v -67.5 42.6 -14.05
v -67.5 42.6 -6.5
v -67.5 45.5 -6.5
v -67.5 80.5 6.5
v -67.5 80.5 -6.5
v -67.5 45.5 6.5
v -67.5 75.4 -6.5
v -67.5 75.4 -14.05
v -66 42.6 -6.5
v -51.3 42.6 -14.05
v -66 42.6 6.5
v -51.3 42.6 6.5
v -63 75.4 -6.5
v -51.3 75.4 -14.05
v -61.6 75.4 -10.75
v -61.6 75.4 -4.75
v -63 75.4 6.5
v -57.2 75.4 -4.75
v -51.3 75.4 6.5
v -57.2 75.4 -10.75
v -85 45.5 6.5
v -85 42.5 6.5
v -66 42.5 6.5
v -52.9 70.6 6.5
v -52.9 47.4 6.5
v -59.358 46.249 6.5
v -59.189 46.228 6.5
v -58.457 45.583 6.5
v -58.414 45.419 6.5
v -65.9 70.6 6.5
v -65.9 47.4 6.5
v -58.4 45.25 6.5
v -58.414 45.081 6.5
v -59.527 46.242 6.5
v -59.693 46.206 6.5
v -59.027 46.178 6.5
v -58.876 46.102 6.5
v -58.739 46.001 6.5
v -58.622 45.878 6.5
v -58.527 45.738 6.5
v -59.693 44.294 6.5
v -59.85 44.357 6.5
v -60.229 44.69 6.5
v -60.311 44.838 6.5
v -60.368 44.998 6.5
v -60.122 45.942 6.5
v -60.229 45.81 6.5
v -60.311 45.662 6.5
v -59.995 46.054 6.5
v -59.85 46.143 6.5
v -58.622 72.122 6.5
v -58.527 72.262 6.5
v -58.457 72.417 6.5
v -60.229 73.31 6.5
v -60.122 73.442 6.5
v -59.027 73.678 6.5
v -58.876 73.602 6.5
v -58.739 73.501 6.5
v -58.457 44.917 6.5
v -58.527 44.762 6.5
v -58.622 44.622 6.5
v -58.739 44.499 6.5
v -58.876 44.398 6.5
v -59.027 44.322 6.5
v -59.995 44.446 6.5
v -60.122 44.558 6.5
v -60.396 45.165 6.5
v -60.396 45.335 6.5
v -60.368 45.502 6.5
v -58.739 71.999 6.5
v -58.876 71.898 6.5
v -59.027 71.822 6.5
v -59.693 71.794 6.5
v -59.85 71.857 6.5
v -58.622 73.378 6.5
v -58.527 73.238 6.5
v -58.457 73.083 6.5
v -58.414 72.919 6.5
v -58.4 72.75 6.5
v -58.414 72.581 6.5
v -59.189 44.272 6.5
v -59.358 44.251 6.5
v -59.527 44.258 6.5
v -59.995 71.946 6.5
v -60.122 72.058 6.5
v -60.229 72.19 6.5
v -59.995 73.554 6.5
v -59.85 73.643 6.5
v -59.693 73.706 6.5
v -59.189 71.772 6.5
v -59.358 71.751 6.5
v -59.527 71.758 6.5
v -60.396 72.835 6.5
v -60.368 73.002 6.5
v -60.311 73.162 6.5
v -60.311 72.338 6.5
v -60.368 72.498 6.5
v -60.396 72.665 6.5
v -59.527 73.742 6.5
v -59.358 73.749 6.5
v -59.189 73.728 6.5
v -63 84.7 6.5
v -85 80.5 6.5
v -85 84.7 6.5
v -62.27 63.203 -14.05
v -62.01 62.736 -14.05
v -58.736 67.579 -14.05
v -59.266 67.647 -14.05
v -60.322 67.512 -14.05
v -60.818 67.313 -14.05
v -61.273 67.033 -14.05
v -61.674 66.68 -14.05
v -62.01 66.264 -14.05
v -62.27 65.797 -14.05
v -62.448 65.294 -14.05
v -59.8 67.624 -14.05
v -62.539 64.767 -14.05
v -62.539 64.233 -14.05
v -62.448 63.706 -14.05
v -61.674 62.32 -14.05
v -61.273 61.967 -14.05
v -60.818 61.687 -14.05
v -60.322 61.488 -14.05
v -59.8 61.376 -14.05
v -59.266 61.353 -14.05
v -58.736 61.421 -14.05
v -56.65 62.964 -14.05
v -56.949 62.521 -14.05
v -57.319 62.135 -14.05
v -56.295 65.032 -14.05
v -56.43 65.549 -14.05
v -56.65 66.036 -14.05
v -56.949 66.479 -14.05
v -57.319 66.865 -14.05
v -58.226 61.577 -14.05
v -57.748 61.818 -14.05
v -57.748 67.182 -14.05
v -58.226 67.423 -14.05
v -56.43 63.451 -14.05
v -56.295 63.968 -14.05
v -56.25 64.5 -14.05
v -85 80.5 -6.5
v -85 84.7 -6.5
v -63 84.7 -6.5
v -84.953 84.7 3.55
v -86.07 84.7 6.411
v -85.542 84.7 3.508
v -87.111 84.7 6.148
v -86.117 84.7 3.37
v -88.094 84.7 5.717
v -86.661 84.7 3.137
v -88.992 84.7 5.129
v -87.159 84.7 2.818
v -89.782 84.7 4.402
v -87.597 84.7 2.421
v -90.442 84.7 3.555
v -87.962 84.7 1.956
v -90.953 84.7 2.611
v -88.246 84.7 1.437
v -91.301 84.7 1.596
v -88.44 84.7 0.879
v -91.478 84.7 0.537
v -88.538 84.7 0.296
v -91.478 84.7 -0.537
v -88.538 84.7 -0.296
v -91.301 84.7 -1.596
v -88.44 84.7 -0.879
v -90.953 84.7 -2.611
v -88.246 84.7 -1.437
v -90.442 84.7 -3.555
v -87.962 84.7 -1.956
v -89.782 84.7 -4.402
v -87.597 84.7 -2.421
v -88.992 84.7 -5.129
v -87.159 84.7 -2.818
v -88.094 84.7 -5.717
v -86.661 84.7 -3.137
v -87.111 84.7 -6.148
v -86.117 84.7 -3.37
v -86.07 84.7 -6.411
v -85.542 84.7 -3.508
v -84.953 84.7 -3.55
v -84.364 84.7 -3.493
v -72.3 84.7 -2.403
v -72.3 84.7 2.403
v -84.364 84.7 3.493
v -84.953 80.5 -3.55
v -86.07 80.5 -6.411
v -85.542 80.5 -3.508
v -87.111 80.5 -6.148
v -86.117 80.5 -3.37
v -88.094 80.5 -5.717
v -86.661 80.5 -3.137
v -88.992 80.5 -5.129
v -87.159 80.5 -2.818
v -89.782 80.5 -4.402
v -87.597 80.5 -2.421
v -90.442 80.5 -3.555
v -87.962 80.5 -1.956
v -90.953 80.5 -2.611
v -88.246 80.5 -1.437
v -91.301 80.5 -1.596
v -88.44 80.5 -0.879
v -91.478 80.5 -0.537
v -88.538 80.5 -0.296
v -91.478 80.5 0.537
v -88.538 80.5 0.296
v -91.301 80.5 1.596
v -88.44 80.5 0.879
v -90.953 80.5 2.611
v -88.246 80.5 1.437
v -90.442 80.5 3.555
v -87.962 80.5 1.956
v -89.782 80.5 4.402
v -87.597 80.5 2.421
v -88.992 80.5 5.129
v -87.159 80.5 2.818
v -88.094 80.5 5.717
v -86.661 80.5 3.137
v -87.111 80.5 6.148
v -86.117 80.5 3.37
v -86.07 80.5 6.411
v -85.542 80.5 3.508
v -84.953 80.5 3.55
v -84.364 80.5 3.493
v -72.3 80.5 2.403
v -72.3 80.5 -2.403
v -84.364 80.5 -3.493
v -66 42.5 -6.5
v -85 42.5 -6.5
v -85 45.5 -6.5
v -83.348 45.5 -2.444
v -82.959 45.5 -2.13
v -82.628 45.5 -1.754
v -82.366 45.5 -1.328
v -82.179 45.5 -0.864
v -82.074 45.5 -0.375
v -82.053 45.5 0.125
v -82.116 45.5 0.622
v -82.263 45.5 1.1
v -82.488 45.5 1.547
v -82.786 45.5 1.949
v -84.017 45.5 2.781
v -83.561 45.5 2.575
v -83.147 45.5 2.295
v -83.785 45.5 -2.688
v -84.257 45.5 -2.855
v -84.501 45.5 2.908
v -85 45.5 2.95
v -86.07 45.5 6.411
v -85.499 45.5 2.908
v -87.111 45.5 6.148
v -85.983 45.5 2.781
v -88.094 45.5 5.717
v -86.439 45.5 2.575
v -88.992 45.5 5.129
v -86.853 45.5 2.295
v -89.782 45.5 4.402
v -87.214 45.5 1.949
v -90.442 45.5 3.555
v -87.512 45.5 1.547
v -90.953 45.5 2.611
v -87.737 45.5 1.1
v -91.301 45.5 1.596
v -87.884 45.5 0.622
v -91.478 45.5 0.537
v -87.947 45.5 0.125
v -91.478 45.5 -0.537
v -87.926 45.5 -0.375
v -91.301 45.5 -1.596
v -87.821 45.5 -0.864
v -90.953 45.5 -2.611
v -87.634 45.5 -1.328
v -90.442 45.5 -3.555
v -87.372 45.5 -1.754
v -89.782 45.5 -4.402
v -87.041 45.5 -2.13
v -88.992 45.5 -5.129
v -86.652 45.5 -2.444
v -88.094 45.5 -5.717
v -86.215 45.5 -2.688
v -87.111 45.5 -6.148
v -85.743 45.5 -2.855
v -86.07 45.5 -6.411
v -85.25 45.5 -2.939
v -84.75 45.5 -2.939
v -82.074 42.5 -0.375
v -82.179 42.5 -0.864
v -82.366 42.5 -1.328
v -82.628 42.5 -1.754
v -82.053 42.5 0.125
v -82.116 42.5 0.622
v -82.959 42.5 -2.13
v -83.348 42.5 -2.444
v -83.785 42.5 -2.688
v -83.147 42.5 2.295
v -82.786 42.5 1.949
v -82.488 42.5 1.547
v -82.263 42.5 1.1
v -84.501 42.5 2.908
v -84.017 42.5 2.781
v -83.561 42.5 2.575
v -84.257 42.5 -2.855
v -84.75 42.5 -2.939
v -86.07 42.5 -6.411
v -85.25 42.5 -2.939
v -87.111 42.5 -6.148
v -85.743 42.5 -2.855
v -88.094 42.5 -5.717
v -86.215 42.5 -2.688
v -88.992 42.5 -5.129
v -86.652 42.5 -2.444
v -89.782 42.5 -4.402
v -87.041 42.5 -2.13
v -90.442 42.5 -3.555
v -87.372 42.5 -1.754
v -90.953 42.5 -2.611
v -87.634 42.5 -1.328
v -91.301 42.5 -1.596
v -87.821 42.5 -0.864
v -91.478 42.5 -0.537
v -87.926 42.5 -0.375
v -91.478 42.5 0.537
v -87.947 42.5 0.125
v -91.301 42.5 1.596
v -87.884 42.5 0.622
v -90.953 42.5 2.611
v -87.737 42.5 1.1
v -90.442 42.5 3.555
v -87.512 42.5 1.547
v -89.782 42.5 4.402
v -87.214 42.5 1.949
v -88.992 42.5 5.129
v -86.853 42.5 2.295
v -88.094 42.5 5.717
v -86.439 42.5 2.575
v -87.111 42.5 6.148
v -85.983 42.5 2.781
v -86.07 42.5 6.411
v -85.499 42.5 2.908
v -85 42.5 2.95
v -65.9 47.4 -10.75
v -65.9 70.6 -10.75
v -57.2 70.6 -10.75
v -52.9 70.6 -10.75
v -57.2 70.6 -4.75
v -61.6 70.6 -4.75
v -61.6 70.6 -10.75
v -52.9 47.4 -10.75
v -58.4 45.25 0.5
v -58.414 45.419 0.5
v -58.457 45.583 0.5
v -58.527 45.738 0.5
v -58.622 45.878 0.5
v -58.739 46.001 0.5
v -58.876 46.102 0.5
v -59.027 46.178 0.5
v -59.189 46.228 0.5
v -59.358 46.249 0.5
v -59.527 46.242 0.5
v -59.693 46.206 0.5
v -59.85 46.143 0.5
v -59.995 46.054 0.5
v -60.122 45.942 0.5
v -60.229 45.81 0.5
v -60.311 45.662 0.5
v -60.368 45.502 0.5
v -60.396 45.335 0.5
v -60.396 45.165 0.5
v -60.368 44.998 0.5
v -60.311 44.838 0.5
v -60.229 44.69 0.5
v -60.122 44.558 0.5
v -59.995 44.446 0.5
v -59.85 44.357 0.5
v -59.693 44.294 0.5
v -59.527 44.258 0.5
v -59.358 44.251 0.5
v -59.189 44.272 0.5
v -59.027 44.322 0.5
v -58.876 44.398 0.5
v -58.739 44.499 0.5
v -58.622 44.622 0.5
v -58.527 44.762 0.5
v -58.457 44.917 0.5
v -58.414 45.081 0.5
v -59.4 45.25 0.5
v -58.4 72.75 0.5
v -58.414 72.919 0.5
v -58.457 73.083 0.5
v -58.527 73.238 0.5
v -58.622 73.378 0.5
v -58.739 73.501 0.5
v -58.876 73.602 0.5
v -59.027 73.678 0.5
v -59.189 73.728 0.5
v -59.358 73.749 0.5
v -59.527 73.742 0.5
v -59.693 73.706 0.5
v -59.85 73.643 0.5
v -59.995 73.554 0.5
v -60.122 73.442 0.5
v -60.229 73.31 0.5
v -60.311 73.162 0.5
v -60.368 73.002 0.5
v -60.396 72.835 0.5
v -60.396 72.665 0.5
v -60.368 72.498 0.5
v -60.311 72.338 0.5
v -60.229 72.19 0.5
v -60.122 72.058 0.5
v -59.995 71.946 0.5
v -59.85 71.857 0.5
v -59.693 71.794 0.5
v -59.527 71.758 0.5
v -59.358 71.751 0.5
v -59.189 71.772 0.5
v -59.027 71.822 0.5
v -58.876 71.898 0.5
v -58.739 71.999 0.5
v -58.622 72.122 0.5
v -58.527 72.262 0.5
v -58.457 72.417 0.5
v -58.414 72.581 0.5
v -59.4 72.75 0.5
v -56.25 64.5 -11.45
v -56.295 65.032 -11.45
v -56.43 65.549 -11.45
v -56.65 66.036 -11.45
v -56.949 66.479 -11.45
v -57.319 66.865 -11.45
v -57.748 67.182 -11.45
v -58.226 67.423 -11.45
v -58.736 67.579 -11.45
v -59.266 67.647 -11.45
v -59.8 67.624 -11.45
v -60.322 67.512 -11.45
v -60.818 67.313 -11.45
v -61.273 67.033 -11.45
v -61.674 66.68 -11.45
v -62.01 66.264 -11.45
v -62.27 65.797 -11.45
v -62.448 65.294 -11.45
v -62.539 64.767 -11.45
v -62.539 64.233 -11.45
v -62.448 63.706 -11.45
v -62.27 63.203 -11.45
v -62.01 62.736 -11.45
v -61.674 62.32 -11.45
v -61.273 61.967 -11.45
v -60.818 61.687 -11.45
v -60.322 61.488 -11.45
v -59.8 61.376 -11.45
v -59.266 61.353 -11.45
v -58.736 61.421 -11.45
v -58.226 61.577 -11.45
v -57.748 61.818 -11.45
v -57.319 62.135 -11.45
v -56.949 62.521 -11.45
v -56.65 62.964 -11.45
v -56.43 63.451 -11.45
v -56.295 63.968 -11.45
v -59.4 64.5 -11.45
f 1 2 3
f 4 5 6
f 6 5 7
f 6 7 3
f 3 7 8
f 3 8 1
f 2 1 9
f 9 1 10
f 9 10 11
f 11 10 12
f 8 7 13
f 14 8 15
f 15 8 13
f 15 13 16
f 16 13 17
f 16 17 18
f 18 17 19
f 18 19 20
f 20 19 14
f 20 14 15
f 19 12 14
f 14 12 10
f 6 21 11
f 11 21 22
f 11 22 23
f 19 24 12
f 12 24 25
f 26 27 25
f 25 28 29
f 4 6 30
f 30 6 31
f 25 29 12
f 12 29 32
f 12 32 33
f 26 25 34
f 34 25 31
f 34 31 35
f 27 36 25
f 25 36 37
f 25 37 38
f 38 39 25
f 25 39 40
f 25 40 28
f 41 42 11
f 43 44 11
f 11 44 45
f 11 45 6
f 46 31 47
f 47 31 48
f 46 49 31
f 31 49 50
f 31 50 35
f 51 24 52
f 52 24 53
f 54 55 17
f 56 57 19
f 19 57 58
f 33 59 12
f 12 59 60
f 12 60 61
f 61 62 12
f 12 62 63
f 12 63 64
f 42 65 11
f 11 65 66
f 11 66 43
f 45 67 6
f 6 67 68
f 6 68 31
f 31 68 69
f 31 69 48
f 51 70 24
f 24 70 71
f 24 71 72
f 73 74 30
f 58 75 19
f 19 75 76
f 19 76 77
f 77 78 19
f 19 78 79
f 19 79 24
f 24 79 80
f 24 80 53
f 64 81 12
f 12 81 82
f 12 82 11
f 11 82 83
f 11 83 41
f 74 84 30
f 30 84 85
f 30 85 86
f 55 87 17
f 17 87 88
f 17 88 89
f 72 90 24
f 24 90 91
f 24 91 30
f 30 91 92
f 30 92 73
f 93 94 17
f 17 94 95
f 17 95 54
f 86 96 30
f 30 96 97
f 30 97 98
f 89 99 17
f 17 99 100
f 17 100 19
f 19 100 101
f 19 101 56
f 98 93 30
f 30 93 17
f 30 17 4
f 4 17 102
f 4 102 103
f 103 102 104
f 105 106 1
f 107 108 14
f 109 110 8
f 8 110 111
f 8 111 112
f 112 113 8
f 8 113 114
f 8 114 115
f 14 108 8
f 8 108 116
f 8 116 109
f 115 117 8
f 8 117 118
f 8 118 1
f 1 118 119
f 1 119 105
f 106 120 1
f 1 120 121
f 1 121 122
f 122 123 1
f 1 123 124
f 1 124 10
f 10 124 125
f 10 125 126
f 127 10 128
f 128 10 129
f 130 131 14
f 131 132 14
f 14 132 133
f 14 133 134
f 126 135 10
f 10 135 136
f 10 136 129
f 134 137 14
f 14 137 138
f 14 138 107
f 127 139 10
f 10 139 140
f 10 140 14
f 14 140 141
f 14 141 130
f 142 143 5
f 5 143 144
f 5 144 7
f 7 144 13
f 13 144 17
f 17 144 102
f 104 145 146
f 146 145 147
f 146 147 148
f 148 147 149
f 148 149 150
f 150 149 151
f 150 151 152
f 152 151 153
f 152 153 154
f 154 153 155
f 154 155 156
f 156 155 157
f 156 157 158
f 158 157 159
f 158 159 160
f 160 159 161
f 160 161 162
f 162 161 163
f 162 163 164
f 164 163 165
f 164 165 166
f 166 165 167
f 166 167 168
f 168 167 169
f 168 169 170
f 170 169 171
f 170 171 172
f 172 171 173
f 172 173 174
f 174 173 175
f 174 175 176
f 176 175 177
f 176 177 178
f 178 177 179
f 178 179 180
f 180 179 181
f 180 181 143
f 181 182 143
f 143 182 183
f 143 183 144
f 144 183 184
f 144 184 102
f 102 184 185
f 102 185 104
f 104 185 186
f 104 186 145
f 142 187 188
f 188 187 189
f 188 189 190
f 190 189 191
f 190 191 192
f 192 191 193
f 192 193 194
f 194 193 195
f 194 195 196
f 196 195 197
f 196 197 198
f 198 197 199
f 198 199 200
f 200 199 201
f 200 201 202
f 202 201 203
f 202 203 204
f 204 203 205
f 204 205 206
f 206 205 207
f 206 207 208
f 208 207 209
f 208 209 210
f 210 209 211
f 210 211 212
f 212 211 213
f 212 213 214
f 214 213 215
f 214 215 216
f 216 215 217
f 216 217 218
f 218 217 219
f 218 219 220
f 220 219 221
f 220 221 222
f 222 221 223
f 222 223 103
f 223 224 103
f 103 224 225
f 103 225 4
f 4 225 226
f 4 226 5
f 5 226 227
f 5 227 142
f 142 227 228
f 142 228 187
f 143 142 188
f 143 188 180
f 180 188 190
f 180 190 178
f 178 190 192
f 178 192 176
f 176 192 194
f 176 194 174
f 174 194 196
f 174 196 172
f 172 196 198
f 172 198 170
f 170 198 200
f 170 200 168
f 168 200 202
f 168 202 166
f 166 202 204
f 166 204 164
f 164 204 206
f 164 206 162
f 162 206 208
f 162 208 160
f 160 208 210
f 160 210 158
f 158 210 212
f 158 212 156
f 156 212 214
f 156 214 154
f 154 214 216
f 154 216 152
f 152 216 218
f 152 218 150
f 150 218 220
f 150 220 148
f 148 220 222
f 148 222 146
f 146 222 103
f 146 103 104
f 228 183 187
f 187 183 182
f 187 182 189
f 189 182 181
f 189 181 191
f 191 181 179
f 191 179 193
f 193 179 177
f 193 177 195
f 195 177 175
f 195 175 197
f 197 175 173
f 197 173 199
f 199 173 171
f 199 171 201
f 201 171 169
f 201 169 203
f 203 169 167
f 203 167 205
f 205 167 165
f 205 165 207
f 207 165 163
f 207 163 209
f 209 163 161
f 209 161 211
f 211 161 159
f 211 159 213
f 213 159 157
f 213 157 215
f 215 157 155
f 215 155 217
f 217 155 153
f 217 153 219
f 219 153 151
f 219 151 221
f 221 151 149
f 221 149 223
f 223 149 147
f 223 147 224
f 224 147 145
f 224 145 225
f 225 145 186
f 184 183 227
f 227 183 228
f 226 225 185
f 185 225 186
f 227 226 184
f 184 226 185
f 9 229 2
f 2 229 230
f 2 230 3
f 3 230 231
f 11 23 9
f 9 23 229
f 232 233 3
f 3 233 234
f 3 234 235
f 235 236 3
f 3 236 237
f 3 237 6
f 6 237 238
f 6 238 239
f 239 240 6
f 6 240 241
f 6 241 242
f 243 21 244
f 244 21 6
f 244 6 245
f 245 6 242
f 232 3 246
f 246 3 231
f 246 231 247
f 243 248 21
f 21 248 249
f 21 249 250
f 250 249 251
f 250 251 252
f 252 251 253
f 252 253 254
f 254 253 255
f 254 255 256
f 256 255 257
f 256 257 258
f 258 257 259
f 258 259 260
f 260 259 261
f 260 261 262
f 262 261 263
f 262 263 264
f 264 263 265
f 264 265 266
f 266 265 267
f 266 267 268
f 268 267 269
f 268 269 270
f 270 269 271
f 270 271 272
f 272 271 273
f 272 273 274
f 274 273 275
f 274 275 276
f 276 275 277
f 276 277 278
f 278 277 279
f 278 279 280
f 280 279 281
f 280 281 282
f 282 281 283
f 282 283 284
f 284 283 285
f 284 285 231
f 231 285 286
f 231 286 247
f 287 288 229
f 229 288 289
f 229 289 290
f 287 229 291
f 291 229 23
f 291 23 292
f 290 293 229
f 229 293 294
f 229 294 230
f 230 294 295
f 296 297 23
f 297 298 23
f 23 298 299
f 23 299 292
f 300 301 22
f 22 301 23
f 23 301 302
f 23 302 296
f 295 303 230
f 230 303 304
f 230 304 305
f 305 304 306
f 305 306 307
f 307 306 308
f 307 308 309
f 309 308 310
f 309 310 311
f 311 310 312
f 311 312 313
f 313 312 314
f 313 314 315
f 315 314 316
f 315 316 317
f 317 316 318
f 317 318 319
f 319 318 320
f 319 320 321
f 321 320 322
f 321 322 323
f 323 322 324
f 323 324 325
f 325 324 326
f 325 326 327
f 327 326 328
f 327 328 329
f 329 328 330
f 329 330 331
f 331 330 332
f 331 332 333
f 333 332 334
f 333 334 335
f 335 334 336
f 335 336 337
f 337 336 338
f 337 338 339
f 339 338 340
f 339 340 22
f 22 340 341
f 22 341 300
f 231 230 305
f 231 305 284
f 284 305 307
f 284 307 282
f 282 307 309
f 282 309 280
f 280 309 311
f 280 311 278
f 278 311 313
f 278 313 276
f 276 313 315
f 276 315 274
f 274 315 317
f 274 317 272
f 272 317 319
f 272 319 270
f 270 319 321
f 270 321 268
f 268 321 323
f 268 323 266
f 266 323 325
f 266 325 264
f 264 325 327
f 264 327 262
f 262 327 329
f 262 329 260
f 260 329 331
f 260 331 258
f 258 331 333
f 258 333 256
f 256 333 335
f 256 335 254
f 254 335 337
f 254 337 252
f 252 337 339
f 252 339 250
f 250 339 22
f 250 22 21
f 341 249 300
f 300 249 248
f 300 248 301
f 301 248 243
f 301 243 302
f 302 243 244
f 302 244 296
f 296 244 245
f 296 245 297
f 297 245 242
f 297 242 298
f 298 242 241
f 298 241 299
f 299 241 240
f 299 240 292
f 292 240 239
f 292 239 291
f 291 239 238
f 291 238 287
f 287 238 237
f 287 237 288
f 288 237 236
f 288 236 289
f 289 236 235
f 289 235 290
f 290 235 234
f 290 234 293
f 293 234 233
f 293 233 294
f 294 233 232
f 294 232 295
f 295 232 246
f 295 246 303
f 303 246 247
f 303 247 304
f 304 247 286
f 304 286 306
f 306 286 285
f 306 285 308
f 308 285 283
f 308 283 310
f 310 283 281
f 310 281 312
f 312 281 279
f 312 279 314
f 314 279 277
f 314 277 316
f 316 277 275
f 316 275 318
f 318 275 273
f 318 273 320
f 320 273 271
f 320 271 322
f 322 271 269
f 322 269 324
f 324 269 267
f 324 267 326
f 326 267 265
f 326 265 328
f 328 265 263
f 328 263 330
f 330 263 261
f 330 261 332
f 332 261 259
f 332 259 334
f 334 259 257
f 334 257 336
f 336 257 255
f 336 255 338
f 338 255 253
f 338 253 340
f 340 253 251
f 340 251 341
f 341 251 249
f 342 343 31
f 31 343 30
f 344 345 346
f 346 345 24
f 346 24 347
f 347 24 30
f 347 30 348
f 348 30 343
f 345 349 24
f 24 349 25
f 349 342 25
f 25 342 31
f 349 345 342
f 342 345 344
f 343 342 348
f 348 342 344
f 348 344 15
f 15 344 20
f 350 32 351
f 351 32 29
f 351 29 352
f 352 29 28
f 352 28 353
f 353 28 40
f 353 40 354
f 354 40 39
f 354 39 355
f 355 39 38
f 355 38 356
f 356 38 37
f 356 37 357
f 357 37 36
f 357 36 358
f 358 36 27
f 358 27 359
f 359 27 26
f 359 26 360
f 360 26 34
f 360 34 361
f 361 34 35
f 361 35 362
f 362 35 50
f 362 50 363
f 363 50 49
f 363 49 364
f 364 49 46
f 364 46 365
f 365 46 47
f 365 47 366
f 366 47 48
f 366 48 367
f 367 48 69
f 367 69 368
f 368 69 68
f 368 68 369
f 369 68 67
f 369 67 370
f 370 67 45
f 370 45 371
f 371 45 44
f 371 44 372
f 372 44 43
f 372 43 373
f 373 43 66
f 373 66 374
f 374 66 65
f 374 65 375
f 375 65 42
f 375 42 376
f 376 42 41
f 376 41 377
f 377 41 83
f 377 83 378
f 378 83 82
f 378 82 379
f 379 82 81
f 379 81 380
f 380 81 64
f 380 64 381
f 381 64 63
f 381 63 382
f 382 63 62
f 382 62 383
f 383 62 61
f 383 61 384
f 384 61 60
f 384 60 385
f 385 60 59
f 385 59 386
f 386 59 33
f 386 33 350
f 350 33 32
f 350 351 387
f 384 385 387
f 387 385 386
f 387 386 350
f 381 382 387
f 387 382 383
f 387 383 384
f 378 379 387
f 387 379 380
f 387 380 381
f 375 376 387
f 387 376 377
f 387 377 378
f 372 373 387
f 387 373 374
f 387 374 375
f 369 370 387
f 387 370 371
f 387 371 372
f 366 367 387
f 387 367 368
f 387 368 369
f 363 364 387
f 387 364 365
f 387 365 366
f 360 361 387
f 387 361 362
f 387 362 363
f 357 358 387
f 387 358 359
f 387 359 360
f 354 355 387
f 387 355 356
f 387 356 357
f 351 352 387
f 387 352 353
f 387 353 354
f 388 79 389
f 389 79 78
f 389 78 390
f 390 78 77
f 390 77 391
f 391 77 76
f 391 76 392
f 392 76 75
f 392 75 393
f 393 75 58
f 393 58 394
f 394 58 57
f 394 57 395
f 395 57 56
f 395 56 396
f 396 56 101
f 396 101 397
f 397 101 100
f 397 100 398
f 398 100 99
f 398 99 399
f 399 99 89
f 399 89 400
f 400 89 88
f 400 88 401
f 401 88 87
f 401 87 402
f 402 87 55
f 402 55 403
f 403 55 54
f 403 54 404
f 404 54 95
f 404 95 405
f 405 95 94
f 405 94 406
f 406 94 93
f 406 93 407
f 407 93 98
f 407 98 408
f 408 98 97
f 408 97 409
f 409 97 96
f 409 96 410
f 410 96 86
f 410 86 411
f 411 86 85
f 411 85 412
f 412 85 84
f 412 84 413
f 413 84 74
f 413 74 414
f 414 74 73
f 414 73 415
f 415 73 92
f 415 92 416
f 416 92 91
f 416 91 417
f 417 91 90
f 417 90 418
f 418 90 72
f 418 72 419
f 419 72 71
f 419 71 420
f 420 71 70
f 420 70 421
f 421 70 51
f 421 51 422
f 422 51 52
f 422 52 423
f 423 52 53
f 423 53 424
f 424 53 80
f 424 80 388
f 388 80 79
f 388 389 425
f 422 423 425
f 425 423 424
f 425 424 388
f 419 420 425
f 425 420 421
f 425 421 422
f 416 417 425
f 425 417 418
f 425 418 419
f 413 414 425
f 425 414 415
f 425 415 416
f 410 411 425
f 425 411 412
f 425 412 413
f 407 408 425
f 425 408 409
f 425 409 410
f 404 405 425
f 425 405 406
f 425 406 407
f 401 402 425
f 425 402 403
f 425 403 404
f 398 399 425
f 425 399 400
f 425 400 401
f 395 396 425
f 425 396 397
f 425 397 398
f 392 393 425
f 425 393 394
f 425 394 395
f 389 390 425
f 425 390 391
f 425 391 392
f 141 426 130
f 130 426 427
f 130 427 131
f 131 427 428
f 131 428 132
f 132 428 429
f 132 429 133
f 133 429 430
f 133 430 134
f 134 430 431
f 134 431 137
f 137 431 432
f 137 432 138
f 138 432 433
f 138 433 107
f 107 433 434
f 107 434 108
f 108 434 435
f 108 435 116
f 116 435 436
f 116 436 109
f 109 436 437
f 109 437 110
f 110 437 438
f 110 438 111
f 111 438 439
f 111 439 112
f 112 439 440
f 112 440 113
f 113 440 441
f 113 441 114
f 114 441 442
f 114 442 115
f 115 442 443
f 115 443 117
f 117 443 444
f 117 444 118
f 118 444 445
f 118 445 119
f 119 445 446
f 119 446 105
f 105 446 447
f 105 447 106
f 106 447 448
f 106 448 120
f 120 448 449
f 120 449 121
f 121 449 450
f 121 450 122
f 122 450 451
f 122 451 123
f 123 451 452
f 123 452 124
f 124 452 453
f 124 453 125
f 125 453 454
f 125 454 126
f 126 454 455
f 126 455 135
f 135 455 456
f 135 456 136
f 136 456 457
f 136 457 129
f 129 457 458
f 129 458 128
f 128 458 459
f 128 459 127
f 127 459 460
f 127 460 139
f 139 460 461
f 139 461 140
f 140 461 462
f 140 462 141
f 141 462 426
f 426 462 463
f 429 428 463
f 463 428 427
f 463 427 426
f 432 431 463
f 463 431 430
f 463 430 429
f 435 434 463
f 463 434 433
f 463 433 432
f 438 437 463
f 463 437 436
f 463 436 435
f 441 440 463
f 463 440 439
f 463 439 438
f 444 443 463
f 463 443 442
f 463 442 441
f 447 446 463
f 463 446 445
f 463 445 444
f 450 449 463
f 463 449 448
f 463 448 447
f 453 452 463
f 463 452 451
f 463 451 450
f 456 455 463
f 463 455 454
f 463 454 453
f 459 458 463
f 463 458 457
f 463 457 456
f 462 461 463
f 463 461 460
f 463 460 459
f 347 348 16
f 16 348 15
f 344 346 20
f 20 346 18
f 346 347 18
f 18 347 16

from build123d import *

# Parameters (mm, degrees)
BOSS_EXTRUDE1_START = -3.775
SKETCH1_W           = 16.2
SKETCH1_H           = 32.8
BOSS_EXTRUDE1_DEPTH = 10.275
BOSS_EXTRUDE2_START = -65.25
SKETCH2_W           = 13
SKETCH2_H           = 11.7
BOSS_EXTRUDE2_DEPTH = 2.25
BOSS_EXTRUDE3_START = 82.6
SKETCH3_R           = 6.5
BOSS_EXTRUDE3_DEPTH = 2.1
BOSS_EXTRUDE4_START = 82.6
SKETCH4_W           = 19
SKETCH4_H           = 13
BOSS_EXTRUDE4_DEPTH = 2.1
CUT_EXTRUDE1_START  = 82.6
SKETCH5_R           = 3.55
CUT_EXTRUDE1_DEPTH  = 2.1
CUT_EXTRUDE2_START  = 82.6
CUT_EXTRUDE2_DEPTH  = 2.1
BOSS_EXTRUDE5_START = 44
SKETCH7_R           = 6.5
BOSS_EXTRUDE5_DEPTH = 1.5
BOSS_EXTRUDE6_START = 44
SKETCH8_W           = 19
SKETCH8_H           = 13
BOSS_EXTRUDE6_DEPTH = 1.5
CUT_EXTRUDE3_START  = 44
SKETCH9_R           = 2.95
CUT_EXTRUDE3_DEPTH  = 1.5
CUT_EXTRUDE4_START  = -2.125
SKETCH10_W          = 13
SKETCH10_H          = 23.2
CUT_EXTRUDE4_DEPTH  = 8.625
CUT_EXTRUDE5_START  = 3.5
SKETCH11_R          = 1
CUT_EXTRUDE5_DEPTH  = 3
CUT_EXTRUDE6_START  = 3.5
SKETCH12_R          = 1
CUT_EXTRUDE6_DEPTH  = 3
CUT_EXTRUDE7_START  = -12.75
SKETCH13_R          = 3.15
CUT_EXTRUDE7_DEPTH  = 1.3
CUT_EXTRUDE8_START  = 73
SKETCH14_W          = 4.4
SKETCH14_H          = 6
CUT_EXTRUDE8_DEPTH  = 2.4


with BuildPart() as part:
    # Sketch1 → Boss-Extrude1 (new, symmetric)
    with BuildSketch(Plane.XY.offset(BOSS_EXTRUDE1_START)):
        with Locations((-59.4, 59)):
            Rectangle(SKETCH1_W, SKETCH1_H)
    extrude(amount=BOSS_EXTRUDE1_DEPTH, both=True)

    # Sketch2 → Boss-Extrude2 (add, symmetric)
    with BuildSketch(Plane(origin=(0, 0, 0), x_dir=(0, 0, -1), z_dir=(1, 0, 0)).offset(BOSS_EXTRUDE2_START)):
        with Locations((0, 78.85)):
            Rectangle(SKETCH2_W, SKETCH2_H)
    extrude(amount=BOSS_EXTRUDE2_DEPTH, both=True)



with BuildPart() as body_2:
    # Sketch3 → Boss-Extrude3 (new, symmetric)
    with BuildSketch(Plane(origin=(0, 0, 0), x_dir=(1, 0, 0), z_dir=(0, 1, 0)).offset(BOSS_EXTRUDE3_START)):
        with Locations(Location((-85, 0, 0), (0, 0, 270))):
            Circle(SKETCH3_R)
    extrude(amount=BOSS_EXTRUDE3_DEPTH, both=True)


with BuildPart() as part_1:
    add(part.part)

    add(body_2.part)  # Boss-Extrude4 merges body 2
    # Sketch4 → Boss-Extrude4 (add, symmetric)
    with BuildSketch(Plane(origin=(0, 0, 0), x_dir=(1, 0, 0), z_dir=(0, 1, 0)).offset(BOSS_EXTRUDE4_START)):
        with Locations((-75.5, 0)):
            Rectangle(SKETCH4_W, SKETCH4_H)
    extrude(amount=BOSS_EXTRUDE4_DEPTH, both=True)

    # Sketch5 → Cut-Extrude1 (cut, symmetric)
    with BuildSketch(Plane(origin=(0, 0, 0), x_dir=(1, 0, 0), z_dir=(0, 1, 0)).offset(CUT_EXTRUDE1_START)):
        with Locations(Location((-85, 0, 0), (0, 0, 270))):
            Circle(SKETCH5_R)
    extrude(amount=CUT_EXTRUDE1_DEPTH, both=True, mode=Mode.SUBTRACT)

    # Sketch6 → Cut-Extrude2 (cut, symmetric)
    with BuildSketch(Plane(origin=(0, 0, 0), x_dir=(1, 0, 0), z_dir=(0, 1, 0)).offset(CUT_EXTRUDE2_START)):
        Polygon((-85, -3.55), (-72.3, -2.403281405), (-72.3, 2.403281405), (-85, 3.55), align=None)
    extrude(amount=CUT_EXTRUDE2_DEPTH, both=True, mode=Mode.SUBTRACT)



with BuildPart() as body_2_2:
    # Sketch7 → Boss-Extrude5 (new, symmetric)
    with BuildSketch(Plane(origin=(0, 0, 0), x_dir=(1, 0, 0), z_dir=(0, 1, 0)).offset(BOSS_EXTRUDE5_START)):
        with Locations(Location((-85, 0, 0), (0, 0, 270))):
            Circle(SKETCH7_R)
    extrude(amount=BOSS_EXTRUDE5_DEPTH, both=True)


with BuildPart() as part_2:
    add(part_1.part)

    add(body_2_2.part)  # Boss-Extrude6 merges body 2 2
    # Sketch8 → Boss-Extrude6 (add, symmetric)
    with BuildSketch(Plane(origin=(0, 0, 0), x_dir=(1, 0, 0), z_dir=(0, 1, 0)).offset(BOSS_EXTRUDE6_START)):
        with Locations((-75.5, 0)):
            Rectangle(SKETCH8_W, SKETCH8_H)
    extrude(amount=BOSS_EXTRUDE6_DEPTH, both=True)

    # Sketch9 → Cut-Extrude3 (cut, symmetric)
    with BuildSketch(Plane(origin=(0, 0, 0), x_dir=(1, 0, 0), z_dir=(0, 1, 0)).offset(CUT_EXTRUDE3_START)):
        with Locations(Location((-85, 0, 0), (0, 0, 270))):
            Circle(SKETCH9_R)
    extrude(amount=CUT_EXTRUDE3_DEPTH, both=True, mode=Mode.SUBTRACT)

    # Sketch10 → Cut-Extrude4 (cut, symmetric)
    with BuildSketch(Plane.XY.offset(CUT_EXTRUDE4_START)):
        with Locations((-59.4, 59)):
            Rectangle(SKETCH10_W, SKETCH10_H)
    extrude(amount=CUT_EXTRUDE4_DEPTH, both=True, mode=Mode.SUBTRACT)

    # Sketch11 → Cut-Extrude5 (cut, symmetric)
    with BuildSketch(Plane.XY.offset(CUT_EXTRUDE5_START)):
        with Locations((-59.4, 45.25)):
            Circle(SKETCH11_R)
    extrude(amount=CUT_EXTRUDE5_DEPTH, both=True, mode=Mode.SUBTRACT)

    # Sketch12 → Cut-Extrude6 (cut, symmetric)
    with BuildSketch(Plane.XY.offset(CUT_EXTRUDE6_START)):
        with Locations((-59.4, 72.75)):
            Circle(SKETCH12_R)
    extrude(amount=CUT_EXTRUDE6_DEPTH, both=True, mode=Mode.SUBTRACT)

    # Sketch13 → Cut-Extrude7 (cut, symmetric)
    with BuildSketch(Plane.XY.offset(CUT_EXTRUDE7_START)):
        with Locations((-59.4, 64.5)):
            Circle(SKETCH13_R)
    extrude(amount=CUT_EXTRUDE7_DEPTH, both=True, mode=Mode.SUBTRACT)

    # Sketch14 → Cut-Extrude8 (cut, symmetric)
    with BuildSketch(Plane(origin=(0, 0, 0), x_dir=(1, 0, 0), z_dir=(0, 1, 0)).offset(CUT_EXTRUDE8_START)):
        with Locations((-59.4, 7.75)):
            Rectangle(SKETCH14_W, SKETCH14_H)
    extrude(amount=CUT_EXTRUDE8_DEPTH, both=True, mode=Mode.SUBTRACT)


solid = part_2.part
